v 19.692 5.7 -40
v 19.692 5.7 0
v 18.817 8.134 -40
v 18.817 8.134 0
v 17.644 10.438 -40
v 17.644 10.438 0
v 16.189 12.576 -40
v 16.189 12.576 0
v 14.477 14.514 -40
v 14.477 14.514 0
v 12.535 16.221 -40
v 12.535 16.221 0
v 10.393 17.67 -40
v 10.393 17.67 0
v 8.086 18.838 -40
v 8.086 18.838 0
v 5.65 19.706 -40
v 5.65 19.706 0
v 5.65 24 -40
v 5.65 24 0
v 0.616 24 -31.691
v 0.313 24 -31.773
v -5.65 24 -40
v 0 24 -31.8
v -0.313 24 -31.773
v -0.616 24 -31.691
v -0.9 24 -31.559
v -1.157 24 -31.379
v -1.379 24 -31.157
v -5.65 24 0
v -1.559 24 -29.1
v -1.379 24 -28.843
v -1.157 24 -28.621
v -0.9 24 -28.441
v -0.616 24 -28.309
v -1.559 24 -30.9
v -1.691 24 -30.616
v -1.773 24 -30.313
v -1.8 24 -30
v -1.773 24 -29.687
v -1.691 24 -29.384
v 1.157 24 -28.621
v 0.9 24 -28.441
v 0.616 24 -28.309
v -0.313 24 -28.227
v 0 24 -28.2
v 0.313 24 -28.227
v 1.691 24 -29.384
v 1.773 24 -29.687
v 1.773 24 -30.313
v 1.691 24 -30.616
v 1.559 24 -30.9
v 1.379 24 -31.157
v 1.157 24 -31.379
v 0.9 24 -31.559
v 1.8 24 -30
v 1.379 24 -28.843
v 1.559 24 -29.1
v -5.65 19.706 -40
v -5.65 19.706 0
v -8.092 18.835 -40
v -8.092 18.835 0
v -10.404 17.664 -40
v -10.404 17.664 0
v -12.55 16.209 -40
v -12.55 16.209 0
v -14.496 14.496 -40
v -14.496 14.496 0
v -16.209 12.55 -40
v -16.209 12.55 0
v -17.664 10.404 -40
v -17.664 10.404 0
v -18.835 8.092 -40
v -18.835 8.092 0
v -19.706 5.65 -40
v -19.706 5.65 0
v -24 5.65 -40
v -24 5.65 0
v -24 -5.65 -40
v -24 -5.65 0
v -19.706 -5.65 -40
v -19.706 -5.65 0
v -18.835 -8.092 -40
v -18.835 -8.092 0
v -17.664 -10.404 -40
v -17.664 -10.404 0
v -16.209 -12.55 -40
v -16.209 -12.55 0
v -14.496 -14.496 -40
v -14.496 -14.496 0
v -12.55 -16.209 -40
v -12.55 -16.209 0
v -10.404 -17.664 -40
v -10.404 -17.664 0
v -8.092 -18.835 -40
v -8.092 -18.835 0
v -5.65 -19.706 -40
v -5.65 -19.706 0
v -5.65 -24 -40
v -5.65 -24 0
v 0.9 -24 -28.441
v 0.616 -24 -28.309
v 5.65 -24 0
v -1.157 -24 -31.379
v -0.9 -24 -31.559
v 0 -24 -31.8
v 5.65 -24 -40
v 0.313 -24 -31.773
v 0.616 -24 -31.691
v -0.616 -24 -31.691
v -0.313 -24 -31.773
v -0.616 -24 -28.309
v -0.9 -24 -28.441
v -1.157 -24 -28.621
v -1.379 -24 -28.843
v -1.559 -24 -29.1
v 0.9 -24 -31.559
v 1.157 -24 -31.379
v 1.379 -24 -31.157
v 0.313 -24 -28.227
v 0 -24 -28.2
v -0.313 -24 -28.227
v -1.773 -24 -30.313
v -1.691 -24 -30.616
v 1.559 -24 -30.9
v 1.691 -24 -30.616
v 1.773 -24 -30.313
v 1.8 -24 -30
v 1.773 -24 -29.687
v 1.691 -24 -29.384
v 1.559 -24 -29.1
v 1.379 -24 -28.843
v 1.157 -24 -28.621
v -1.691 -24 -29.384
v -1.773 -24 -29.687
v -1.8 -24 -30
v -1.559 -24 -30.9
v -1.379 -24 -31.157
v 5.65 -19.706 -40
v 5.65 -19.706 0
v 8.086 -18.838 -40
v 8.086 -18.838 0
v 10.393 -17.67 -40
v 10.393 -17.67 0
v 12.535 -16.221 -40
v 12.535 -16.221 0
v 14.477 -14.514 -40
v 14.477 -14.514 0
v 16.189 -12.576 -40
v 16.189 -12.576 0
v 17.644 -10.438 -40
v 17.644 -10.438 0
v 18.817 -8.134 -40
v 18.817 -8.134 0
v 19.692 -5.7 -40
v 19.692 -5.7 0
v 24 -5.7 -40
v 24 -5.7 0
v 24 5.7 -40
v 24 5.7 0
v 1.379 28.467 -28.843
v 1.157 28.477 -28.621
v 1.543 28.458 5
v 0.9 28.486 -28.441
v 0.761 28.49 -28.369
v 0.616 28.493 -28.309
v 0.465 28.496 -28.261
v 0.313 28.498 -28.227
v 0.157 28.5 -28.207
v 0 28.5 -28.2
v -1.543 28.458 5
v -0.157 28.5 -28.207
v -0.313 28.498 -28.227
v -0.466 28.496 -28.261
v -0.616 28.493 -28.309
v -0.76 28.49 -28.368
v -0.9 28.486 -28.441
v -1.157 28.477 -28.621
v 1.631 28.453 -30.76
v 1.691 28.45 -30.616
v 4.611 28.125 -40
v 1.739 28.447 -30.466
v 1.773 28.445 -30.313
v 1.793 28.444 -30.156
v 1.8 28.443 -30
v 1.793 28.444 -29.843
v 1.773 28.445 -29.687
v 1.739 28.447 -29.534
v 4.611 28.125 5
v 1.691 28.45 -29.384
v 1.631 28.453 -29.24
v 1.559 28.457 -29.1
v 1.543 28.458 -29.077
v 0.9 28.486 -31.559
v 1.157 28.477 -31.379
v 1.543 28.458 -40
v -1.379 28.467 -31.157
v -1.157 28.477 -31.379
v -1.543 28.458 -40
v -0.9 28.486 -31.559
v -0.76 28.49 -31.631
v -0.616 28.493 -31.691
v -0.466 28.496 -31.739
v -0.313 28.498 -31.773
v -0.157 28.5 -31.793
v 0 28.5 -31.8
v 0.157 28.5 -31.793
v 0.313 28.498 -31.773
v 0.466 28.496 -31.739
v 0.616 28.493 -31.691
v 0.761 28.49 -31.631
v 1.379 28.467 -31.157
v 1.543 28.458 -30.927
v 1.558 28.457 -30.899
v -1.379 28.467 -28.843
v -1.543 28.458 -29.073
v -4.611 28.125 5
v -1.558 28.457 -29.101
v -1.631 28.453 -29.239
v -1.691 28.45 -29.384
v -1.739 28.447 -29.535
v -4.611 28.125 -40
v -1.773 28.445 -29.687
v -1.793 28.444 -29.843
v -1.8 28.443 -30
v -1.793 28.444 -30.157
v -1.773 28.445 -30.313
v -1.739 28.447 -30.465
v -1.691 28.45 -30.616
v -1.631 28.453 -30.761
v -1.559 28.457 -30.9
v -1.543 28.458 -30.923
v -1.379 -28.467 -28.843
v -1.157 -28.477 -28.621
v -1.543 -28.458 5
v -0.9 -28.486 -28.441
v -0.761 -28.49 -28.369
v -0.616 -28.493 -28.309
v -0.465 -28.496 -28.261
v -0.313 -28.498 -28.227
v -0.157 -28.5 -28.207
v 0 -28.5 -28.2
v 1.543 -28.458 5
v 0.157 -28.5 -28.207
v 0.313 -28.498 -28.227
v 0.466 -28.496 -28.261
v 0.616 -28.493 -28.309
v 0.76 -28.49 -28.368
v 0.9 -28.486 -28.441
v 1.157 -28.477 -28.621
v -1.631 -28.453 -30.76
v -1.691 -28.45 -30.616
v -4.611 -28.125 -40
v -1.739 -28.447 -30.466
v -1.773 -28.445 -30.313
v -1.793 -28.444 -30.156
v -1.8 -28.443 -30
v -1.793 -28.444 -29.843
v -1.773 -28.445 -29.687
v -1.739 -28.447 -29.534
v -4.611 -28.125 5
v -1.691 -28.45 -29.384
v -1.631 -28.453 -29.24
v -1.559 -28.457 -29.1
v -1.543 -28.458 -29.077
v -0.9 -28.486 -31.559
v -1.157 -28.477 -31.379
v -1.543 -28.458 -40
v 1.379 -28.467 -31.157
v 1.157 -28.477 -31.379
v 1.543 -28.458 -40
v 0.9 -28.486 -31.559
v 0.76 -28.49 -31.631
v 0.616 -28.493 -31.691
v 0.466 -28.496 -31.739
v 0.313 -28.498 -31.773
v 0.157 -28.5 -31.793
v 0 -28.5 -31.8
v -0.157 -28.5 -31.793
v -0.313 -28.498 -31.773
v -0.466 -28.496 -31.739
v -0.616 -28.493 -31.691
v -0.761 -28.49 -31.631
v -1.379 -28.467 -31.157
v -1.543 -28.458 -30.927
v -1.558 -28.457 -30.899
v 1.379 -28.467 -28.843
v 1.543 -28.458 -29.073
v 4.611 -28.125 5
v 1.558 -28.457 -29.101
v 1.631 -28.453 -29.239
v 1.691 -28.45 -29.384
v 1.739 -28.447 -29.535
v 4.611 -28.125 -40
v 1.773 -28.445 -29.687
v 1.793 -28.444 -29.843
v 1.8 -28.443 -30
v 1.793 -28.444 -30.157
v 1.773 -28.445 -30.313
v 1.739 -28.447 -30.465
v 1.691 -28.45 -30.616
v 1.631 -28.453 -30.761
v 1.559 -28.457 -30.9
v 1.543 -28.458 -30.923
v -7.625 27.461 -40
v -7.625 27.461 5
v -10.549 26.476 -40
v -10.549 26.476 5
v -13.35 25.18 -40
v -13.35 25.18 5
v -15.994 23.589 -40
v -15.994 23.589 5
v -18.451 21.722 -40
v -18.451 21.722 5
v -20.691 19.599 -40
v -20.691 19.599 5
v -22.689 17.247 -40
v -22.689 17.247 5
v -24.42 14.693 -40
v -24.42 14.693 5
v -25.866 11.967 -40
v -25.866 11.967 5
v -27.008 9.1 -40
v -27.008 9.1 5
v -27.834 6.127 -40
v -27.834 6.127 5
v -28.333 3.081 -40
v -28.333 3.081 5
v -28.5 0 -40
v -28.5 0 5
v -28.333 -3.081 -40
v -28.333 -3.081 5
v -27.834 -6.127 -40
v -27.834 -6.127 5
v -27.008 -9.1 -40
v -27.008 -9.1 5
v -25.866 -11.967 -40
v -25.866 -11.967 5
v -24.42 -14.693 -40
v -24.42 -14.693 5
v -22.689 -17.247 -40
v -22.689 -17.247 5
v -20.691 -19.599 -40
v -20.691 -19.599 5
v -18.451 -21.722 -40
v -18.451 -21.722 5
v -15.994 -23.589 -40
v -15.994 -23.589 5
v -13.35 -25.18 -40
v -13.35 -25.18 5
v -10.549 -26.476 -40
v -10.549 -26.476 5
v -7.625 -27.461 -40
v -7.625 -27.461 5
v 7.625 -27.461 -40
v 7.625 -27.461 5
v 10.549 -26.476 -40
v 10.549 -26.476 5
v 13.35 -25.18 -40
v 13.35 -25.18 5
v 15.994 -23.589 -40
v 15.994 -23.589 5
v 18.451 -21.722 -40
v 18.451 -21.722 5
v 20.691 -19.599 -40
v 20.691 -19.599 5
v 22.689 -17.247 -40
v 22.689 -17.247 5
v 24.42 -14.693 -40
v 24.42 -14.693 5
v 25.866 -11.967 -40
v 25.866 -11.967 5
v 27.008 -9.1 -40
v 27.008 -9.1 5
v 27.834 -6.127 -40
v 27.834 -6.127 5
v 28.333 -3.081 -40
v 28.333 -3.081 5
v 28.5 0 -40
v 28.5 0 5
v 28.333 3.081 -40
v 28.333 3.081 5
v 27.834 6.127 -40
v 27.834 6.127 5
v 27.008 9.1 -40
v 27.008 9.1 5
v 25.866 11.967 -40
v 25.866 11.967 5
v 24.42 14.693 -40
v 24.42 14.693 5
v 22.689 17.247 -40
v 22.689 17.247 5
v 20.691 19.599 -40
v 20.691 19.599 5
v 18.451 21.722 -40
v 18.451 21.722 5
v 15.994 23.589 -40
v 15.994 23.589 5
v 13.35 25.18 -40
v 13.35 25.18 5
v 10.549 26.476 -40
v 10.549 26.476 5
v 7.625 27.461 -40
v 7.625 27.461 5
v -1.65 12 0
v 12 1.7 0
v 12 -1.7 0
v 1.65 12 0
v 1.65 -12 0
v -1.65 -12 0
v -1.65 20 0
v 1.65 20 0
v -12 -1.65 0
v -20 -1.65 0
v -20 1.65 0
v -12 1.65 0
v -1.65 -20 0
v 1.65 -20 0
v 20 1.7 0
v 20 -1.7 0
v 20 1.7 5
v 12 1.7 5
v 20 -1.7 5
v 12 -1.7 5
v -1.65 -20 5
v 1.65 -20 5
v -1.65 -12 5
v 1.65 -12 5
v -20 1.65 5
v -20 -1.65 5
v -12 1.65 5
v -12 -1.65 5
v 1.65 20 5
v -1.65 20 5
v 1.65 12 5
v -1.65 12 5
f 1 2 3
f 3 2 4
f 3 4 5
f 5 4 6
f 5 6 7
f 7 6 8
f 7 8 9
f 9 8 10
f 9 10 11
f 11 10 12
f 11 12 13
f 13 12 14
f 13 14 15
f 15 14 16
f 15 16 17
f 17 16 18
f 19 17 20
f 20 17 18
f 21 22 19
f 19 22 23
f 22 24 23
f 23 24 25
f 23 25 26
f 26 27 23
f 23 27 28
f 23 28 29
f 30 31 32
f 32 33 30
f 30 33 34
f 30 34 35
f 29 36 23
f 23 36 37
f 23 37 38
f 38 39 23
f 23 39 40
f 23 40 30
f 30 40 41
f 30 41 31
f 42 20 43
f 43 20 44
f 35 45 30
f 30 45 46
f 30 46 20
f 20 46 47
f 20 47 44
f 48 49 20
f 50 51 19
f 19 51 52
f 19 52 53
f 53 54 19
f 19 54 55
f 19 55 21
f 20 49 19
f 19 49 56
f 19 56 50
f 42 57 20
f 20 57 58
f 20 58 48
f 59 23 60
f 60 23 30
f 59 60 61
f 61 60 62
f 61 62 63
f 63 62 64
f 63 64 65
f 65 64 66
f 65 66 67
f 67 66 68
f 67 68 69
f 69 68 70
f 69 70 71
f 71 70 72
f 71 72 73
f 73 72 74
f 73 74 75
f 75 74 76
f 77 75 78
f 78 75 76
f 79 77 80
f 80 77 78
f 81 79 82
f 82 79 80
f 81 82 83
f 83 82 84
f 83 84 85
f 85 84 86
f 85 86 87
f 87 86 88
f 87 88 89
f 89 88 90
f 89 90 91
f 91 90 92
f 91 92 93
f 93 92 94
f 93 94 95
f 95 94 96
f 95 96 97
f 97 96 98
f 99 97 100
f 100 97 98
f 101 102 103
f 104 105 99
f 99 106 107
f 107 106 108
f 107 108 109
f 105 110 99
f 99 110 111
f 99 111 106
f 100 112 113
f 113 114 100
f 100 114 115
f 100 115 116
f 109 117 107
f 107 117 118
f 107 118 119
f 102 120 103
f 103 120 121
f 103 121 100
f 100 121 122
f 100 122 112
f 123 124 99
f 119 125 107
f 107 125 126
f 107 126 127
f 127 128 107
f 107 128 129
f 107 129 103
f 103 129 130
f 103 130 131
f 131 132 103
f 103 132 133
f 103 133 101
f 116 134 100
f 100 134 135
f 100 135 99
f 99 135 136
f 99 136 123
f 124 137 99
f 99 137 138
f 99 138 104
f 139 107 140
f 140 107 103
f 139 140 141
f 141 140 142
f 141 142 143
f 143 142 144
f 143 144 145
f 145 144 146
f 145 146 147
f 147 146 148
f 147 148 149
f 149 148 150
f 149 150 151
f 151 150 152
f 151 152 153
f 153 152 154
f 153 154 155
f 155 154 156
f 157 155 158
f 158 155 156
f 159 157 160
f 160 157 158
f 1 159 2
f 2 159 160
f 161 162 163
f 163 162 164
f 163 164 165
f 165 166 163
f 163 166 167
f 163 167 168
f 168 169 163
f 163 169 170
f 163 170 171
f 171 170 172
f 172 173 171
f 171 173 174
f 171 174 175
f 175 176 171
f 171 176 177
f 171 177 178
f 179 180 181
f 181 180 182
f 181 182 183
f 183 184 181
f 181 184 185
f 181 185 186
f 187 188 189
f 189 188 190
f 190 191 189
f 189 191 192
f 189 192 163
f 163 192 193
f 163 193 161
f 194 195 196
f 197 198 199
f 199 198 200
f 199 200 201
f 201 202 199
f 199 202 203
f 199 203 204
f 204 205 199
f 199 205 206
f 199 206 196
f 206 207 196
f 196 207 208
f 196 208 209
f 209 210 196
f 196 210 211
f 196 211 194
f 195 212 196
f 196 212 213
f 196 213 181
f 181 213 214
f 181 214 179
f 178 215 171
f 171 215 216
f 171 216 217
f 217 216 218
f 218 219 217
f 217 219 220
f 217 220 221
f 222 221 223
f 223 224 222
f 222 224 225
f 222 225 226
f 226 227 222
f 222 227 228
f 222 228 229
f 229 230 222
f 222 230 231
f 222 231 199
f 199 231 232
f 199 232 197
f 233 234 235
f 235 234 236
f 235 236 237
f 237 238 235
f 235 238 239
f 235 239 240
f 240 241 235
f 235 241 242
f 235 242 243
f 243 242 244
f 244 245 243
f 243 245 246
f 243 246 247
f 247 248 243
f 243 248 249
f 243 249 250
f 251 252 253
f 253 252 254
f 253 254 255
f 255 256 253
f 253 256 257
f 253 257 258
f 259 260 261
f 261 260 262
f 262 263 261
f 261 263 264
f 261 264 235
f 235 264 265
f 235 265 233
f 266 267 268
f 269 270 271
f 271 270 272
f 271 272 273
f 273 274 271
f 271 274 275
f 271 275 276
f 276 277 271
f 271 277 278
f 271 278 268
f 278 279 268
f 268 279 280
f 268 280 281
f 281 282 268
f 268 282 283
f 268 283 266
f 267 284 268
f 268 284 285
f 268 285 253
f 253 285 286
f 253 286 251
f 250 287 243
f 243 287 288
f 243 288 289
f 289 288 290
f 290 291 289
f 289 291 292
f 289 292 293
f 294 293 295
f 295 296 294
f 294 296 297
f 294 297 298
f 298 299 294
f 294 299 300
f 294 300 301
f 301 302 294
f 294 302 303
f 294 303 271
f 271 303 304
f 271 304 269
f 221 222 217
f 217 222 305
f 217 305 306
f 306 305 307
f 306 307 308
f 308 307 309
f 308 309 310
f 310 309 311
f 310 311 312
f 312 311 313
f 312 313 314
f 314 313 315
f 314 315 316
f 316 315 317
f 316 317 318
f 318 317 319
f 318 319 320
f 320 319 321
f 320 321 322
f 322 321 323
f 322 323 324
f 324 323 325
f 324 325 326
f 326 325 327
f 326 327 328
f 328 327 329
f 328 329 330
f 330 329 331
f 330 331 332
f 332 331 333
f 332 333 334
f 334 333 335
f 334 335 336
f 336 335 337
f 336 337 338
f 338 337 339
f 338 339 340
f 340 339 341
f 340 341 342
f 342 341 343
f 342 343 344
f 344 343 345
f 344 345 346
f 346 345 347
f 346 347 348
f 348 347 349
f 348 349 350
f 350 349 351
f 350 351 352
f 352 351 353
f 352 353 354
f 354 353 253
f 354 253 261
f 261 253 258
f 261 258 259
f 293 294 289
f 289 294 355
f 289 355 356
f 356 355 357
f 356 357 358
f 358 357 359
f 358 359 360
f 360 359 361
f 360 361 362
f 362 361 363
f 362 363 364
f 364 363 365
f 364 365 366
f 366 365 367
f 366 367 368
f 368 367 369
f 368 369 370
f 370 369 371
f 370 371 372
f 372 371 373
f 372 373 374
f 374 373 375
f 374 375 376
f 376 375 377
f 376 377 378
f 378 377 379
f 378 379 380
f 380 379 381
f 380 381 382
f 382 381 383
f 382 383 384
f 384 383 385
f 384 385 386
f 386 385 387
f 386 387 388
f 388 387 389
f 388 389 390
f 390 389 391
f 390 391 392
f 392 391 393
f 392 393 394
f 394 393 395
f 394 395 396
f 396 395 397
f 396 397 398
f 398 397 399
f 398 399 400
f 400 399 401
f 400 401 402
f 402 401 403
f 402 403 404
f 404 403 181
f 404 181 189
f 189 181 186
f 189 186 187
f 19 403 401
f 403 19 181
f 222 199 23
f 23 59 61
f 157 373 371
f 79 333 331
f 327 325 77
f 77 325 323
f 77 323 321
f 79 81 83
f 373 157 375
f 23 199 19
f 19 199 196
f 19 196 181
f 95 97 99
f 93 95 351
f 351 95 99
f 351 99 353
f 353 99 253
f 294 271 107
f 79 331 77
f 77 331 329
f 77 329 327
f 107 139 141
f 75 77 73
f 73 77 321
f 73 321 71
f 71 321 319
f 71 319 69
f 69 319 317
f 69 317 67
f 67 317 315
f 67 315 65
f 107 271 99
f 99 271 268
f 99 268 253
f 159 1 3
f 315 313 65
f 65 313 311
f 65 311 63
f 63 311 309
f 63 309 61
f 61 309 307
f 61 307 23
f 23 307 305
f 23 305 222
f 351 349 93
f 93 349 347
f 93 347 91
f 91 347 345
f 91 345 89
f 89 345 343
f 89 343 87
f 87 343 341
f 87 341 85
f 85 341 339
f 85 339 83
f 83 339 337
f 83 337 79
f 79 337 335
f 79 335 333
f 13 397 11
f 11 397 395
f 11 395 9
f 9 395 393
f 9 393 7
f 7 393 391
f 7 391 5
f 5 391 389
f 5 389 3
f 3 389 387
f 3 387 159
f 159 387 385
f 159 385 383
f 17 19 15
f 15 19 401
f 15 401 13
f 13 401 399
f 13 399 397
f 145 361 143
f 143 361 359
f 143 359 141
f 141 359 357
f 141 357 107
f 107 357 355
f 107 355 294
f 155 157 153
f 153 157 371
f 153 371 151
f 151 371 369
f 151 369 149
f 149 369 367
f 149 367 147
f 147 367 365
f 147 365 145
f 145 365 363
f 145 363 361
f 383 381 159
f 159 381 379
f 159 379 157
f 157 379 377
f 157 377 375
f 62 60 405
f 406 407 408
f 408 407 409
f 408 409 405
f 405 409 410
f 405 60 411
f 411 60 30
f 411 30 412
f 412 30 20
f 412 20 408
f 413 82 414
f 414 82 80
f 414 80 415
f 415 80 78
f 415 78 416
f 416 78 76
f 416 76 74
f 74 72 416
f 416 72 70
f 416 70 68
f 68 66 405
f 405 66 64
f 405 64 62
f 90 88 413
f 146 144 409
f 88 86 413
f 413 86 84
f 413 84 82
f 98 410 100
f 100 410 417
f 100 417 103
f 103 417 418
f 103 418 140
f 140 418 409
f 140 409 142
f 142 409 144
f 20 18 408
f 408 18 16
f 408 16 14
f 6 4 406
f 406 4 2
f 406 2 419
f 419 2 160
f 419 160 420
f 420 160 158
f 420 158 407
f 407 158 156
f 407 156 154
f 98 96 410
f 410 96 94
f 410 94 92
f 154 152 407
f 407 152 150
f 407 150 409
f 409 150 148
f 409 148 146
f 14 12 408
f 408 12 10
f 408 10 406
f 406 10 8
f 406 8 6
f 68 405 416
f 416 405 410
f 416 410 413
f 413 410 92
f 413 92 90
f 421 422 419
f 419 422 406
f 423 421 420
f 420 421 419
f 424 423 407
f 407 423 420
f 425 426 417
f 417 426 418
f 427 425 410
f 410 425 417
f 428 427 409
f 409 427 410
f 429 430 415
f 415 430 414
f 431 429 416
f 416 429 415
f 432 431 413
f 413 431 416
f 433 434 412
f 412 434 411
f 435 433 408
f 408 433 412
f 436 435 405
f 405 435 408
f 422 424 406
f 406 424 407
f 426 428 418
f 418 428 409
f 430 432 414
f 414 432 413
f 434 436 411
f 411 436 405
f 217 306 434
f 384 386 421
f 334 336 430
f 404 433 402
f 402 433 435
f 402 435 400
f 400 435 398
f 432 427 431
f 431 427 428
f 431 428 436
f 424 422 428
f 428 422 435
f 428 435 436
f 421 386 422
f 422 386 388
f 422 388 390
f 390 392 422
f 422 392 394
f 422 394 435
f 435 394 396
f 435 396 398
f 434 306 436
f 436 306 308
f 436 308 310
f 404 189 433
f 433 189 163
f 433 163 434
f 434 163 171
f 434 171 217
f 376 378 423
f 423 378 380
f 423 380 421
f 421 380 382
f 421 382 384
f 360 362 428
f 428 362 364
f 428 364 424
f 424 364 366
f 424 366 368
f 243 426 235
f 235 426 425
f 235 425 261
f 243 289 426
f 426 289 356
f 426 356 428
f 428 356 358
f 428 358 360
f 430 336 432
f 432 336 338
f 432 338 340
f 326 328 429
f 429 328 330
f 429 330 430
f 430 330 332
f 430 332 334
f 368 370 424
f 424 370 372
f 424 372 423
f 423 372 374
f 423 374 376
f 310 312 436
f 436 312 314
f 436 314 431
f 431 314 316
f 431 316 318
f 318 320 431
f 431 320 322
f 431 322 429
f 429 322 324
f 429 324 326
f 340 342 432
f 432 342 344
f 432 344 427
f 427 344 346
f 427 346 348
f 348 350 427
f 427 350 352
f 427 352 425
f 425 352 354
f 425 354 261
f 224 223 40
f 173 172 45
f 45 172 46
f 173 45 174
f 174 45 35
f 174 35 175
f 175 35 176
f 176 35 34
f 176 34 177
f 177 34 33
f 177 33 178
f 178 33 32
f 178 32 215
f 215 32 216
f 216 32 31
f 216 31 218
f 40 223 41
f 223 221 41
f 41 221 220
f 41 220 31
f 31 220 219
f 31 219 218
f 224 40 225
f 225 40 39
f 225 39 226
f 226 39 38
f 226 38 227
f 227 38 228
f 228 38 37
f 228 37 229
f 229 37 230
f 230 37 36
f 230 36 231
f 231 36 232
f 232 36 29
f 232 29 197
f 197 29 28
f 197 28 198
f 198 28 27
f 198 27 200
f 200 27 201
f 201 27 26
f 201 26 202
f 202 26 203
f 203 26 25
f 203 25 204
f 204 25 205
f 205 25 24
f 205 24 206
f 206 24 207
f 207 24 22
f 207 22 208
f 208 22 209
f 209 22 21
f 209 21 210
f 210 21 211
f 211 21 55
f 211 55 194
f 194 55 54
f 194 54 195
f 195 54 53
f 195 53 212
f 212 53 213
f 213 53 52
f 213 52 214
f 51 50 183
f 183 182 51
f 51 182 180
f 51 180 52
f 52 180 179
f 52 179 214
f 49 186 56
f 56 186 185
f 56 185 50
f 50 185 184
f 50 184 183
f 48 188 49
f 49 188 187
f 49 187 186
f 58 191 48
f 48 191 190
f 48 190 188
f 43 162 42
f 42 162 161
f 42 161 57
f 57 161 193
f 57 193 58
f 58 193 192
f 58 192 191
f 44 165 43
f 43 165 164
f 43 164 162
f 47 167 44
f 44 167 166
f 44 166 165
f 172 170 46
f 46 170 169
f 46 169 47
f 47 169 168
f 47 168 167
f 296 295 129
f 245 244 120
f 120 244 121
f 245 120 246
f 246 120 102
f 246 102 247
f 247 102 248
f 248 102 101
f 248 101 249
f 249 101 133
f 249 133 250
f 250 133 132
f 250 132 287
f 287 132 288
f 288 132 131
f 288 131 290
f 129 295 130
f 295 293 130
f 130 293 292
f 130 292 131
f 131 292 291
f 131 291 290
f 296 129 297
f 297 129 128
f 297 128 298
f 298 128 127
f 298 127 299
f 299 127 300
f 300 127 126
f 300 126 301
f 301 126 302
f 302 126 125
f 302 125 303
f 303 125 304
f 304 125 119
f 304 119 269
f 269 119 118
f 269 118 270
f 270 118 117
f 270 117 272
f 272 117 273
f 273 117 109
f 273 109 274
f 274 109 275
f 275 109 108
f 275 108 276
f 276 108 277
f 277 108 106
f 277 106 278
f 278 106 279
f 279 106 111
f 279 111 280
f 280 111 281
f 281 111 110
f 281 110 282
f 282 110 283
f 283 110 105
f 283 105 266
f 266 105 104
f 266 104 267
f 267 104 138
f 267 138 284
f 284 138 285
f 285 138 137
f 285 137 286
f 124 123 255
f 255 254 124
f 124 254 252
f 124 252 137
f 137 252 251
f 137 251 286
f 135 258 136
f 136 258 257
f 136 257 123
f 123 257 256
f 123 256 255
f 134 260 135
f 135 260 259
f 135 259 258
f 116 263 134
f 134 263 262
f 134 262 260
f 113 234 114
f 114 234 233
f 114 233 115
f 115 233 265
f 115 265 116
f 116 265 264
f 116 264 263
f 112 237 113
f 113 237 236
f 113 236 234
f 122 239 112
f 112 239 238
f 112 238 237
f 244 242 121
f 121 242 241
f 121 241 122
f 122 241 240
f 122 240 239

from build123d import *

# Parameters (mm, degrees)
SKETCH1_R           = 28.5
SKETCH1_W           = 3.3
SKETCH1_H           = 8
SKETCH1_W_2         = 8
SKETCH1_H_2         = 3.3
SKETCH1_H_3         = 3.4
BOSS_EXTRUDE1_DEPTH = 5
SKETCH1_3_R         = 28.5
BOSS_EXTRUDE2_DEPTH = 40
SKETCH2_R           = 1.8
CUT_EXTRUDE1_DEPTH  = 35


with BuildPart() as part:
    # Sketch1 → Boss-Extrude1 (new body)
    with BuildSketch(Plane.XY):
        Circle(SKETCH1_R)
        with Locations((0, 16)):
            Rectangle(SKETCH1_W, SKETCH1_H, mode=Mode.SUBTRACT)
        with Locations((-16, 0)):
            Rectangle(SKETCH1_W_2, SKETCH1_H_2, mode=Mode.SUBTRACT)
        with Locations((0, -16)):
            Rectangle(SKETCH1_W, SKETCH1_H, mode=Mode.SUBTRACT)
        with Locations((16, 0)):
            Rectangle(SKETCH1_W_2, SKETCH1_H_3, mode=Mode.SUBTRACT)
    extrude(amount=BOSS_EXTRUDE1_DEPTH)


with BuildPart() as body_2:
    # Sketch1_3 → Boss-Extrude2 (new body)
    with BuildSketch(Plane.XY):
        Circle(SKETCH1_3_R)
        with BuildLine():
            Line((-5.65, 19.706026997), (-5.65, 24))
            Line((-5.65, 24), (5.65, 24))
            Line((5.65, 24), (5.65, 19.706026997))
            ThreePointArc((5.65, 19.706026997), (14.477280714, 14.514073968), (19.691622584, 5.7))
            Line((19.691622584, 5.7), (24, 5.7))
            Line((24, 5.7), (24, -5.7))
            Line((24, -5.7), (19.691622584, -5.7))
            ThreePointArc((19.691622584, -5.7), (14.477280714, -14.514073968), (5.65, -19.706026997))
            Line((5.65, -19.706026997), (5.65, -24))
            Line((5.65, -24), (-5.65, -24))
            Line((-5.65, -24), (-5.65, -19.706026997))
            ThreePointArc((-5.65, -19.706026997), (-14.495689014, -14.495689014), (-19.706026997, -5.65))
            Line((-19.706026997, -5.65), (-24, -5.65))
            Line((-24, -5.65), (-24, 5.65))
            Line((-24, 5.65), (-19.706026997, 5.65))
            ThreePointArc((-19.706026997, 5.65), (-14.495689014, 14.495689014), (-5.65, 19.706026997))
        make_face(mode=Mode.SUBTRACT)
    extrude(amount=-BOSS_EXTRUDE2_DEPTH)

    # Combine1: union part
    add(part.part)

    # Sketch2 → Cut-Extrude1 (cut, symmetric)
    with BuildSketch(Plane(origin=(0, 0, 0), x_dir=(1, 0, 0), z_dir=(0, 1, 0))):
        with Locations((0, 30)):
            Circle(SKETCH2_R)
    extrude(amount=CUT_EXTRUDE1_DEPTH, both=True, mode=Mode.SUBTRACT)


solid = body_2.part
